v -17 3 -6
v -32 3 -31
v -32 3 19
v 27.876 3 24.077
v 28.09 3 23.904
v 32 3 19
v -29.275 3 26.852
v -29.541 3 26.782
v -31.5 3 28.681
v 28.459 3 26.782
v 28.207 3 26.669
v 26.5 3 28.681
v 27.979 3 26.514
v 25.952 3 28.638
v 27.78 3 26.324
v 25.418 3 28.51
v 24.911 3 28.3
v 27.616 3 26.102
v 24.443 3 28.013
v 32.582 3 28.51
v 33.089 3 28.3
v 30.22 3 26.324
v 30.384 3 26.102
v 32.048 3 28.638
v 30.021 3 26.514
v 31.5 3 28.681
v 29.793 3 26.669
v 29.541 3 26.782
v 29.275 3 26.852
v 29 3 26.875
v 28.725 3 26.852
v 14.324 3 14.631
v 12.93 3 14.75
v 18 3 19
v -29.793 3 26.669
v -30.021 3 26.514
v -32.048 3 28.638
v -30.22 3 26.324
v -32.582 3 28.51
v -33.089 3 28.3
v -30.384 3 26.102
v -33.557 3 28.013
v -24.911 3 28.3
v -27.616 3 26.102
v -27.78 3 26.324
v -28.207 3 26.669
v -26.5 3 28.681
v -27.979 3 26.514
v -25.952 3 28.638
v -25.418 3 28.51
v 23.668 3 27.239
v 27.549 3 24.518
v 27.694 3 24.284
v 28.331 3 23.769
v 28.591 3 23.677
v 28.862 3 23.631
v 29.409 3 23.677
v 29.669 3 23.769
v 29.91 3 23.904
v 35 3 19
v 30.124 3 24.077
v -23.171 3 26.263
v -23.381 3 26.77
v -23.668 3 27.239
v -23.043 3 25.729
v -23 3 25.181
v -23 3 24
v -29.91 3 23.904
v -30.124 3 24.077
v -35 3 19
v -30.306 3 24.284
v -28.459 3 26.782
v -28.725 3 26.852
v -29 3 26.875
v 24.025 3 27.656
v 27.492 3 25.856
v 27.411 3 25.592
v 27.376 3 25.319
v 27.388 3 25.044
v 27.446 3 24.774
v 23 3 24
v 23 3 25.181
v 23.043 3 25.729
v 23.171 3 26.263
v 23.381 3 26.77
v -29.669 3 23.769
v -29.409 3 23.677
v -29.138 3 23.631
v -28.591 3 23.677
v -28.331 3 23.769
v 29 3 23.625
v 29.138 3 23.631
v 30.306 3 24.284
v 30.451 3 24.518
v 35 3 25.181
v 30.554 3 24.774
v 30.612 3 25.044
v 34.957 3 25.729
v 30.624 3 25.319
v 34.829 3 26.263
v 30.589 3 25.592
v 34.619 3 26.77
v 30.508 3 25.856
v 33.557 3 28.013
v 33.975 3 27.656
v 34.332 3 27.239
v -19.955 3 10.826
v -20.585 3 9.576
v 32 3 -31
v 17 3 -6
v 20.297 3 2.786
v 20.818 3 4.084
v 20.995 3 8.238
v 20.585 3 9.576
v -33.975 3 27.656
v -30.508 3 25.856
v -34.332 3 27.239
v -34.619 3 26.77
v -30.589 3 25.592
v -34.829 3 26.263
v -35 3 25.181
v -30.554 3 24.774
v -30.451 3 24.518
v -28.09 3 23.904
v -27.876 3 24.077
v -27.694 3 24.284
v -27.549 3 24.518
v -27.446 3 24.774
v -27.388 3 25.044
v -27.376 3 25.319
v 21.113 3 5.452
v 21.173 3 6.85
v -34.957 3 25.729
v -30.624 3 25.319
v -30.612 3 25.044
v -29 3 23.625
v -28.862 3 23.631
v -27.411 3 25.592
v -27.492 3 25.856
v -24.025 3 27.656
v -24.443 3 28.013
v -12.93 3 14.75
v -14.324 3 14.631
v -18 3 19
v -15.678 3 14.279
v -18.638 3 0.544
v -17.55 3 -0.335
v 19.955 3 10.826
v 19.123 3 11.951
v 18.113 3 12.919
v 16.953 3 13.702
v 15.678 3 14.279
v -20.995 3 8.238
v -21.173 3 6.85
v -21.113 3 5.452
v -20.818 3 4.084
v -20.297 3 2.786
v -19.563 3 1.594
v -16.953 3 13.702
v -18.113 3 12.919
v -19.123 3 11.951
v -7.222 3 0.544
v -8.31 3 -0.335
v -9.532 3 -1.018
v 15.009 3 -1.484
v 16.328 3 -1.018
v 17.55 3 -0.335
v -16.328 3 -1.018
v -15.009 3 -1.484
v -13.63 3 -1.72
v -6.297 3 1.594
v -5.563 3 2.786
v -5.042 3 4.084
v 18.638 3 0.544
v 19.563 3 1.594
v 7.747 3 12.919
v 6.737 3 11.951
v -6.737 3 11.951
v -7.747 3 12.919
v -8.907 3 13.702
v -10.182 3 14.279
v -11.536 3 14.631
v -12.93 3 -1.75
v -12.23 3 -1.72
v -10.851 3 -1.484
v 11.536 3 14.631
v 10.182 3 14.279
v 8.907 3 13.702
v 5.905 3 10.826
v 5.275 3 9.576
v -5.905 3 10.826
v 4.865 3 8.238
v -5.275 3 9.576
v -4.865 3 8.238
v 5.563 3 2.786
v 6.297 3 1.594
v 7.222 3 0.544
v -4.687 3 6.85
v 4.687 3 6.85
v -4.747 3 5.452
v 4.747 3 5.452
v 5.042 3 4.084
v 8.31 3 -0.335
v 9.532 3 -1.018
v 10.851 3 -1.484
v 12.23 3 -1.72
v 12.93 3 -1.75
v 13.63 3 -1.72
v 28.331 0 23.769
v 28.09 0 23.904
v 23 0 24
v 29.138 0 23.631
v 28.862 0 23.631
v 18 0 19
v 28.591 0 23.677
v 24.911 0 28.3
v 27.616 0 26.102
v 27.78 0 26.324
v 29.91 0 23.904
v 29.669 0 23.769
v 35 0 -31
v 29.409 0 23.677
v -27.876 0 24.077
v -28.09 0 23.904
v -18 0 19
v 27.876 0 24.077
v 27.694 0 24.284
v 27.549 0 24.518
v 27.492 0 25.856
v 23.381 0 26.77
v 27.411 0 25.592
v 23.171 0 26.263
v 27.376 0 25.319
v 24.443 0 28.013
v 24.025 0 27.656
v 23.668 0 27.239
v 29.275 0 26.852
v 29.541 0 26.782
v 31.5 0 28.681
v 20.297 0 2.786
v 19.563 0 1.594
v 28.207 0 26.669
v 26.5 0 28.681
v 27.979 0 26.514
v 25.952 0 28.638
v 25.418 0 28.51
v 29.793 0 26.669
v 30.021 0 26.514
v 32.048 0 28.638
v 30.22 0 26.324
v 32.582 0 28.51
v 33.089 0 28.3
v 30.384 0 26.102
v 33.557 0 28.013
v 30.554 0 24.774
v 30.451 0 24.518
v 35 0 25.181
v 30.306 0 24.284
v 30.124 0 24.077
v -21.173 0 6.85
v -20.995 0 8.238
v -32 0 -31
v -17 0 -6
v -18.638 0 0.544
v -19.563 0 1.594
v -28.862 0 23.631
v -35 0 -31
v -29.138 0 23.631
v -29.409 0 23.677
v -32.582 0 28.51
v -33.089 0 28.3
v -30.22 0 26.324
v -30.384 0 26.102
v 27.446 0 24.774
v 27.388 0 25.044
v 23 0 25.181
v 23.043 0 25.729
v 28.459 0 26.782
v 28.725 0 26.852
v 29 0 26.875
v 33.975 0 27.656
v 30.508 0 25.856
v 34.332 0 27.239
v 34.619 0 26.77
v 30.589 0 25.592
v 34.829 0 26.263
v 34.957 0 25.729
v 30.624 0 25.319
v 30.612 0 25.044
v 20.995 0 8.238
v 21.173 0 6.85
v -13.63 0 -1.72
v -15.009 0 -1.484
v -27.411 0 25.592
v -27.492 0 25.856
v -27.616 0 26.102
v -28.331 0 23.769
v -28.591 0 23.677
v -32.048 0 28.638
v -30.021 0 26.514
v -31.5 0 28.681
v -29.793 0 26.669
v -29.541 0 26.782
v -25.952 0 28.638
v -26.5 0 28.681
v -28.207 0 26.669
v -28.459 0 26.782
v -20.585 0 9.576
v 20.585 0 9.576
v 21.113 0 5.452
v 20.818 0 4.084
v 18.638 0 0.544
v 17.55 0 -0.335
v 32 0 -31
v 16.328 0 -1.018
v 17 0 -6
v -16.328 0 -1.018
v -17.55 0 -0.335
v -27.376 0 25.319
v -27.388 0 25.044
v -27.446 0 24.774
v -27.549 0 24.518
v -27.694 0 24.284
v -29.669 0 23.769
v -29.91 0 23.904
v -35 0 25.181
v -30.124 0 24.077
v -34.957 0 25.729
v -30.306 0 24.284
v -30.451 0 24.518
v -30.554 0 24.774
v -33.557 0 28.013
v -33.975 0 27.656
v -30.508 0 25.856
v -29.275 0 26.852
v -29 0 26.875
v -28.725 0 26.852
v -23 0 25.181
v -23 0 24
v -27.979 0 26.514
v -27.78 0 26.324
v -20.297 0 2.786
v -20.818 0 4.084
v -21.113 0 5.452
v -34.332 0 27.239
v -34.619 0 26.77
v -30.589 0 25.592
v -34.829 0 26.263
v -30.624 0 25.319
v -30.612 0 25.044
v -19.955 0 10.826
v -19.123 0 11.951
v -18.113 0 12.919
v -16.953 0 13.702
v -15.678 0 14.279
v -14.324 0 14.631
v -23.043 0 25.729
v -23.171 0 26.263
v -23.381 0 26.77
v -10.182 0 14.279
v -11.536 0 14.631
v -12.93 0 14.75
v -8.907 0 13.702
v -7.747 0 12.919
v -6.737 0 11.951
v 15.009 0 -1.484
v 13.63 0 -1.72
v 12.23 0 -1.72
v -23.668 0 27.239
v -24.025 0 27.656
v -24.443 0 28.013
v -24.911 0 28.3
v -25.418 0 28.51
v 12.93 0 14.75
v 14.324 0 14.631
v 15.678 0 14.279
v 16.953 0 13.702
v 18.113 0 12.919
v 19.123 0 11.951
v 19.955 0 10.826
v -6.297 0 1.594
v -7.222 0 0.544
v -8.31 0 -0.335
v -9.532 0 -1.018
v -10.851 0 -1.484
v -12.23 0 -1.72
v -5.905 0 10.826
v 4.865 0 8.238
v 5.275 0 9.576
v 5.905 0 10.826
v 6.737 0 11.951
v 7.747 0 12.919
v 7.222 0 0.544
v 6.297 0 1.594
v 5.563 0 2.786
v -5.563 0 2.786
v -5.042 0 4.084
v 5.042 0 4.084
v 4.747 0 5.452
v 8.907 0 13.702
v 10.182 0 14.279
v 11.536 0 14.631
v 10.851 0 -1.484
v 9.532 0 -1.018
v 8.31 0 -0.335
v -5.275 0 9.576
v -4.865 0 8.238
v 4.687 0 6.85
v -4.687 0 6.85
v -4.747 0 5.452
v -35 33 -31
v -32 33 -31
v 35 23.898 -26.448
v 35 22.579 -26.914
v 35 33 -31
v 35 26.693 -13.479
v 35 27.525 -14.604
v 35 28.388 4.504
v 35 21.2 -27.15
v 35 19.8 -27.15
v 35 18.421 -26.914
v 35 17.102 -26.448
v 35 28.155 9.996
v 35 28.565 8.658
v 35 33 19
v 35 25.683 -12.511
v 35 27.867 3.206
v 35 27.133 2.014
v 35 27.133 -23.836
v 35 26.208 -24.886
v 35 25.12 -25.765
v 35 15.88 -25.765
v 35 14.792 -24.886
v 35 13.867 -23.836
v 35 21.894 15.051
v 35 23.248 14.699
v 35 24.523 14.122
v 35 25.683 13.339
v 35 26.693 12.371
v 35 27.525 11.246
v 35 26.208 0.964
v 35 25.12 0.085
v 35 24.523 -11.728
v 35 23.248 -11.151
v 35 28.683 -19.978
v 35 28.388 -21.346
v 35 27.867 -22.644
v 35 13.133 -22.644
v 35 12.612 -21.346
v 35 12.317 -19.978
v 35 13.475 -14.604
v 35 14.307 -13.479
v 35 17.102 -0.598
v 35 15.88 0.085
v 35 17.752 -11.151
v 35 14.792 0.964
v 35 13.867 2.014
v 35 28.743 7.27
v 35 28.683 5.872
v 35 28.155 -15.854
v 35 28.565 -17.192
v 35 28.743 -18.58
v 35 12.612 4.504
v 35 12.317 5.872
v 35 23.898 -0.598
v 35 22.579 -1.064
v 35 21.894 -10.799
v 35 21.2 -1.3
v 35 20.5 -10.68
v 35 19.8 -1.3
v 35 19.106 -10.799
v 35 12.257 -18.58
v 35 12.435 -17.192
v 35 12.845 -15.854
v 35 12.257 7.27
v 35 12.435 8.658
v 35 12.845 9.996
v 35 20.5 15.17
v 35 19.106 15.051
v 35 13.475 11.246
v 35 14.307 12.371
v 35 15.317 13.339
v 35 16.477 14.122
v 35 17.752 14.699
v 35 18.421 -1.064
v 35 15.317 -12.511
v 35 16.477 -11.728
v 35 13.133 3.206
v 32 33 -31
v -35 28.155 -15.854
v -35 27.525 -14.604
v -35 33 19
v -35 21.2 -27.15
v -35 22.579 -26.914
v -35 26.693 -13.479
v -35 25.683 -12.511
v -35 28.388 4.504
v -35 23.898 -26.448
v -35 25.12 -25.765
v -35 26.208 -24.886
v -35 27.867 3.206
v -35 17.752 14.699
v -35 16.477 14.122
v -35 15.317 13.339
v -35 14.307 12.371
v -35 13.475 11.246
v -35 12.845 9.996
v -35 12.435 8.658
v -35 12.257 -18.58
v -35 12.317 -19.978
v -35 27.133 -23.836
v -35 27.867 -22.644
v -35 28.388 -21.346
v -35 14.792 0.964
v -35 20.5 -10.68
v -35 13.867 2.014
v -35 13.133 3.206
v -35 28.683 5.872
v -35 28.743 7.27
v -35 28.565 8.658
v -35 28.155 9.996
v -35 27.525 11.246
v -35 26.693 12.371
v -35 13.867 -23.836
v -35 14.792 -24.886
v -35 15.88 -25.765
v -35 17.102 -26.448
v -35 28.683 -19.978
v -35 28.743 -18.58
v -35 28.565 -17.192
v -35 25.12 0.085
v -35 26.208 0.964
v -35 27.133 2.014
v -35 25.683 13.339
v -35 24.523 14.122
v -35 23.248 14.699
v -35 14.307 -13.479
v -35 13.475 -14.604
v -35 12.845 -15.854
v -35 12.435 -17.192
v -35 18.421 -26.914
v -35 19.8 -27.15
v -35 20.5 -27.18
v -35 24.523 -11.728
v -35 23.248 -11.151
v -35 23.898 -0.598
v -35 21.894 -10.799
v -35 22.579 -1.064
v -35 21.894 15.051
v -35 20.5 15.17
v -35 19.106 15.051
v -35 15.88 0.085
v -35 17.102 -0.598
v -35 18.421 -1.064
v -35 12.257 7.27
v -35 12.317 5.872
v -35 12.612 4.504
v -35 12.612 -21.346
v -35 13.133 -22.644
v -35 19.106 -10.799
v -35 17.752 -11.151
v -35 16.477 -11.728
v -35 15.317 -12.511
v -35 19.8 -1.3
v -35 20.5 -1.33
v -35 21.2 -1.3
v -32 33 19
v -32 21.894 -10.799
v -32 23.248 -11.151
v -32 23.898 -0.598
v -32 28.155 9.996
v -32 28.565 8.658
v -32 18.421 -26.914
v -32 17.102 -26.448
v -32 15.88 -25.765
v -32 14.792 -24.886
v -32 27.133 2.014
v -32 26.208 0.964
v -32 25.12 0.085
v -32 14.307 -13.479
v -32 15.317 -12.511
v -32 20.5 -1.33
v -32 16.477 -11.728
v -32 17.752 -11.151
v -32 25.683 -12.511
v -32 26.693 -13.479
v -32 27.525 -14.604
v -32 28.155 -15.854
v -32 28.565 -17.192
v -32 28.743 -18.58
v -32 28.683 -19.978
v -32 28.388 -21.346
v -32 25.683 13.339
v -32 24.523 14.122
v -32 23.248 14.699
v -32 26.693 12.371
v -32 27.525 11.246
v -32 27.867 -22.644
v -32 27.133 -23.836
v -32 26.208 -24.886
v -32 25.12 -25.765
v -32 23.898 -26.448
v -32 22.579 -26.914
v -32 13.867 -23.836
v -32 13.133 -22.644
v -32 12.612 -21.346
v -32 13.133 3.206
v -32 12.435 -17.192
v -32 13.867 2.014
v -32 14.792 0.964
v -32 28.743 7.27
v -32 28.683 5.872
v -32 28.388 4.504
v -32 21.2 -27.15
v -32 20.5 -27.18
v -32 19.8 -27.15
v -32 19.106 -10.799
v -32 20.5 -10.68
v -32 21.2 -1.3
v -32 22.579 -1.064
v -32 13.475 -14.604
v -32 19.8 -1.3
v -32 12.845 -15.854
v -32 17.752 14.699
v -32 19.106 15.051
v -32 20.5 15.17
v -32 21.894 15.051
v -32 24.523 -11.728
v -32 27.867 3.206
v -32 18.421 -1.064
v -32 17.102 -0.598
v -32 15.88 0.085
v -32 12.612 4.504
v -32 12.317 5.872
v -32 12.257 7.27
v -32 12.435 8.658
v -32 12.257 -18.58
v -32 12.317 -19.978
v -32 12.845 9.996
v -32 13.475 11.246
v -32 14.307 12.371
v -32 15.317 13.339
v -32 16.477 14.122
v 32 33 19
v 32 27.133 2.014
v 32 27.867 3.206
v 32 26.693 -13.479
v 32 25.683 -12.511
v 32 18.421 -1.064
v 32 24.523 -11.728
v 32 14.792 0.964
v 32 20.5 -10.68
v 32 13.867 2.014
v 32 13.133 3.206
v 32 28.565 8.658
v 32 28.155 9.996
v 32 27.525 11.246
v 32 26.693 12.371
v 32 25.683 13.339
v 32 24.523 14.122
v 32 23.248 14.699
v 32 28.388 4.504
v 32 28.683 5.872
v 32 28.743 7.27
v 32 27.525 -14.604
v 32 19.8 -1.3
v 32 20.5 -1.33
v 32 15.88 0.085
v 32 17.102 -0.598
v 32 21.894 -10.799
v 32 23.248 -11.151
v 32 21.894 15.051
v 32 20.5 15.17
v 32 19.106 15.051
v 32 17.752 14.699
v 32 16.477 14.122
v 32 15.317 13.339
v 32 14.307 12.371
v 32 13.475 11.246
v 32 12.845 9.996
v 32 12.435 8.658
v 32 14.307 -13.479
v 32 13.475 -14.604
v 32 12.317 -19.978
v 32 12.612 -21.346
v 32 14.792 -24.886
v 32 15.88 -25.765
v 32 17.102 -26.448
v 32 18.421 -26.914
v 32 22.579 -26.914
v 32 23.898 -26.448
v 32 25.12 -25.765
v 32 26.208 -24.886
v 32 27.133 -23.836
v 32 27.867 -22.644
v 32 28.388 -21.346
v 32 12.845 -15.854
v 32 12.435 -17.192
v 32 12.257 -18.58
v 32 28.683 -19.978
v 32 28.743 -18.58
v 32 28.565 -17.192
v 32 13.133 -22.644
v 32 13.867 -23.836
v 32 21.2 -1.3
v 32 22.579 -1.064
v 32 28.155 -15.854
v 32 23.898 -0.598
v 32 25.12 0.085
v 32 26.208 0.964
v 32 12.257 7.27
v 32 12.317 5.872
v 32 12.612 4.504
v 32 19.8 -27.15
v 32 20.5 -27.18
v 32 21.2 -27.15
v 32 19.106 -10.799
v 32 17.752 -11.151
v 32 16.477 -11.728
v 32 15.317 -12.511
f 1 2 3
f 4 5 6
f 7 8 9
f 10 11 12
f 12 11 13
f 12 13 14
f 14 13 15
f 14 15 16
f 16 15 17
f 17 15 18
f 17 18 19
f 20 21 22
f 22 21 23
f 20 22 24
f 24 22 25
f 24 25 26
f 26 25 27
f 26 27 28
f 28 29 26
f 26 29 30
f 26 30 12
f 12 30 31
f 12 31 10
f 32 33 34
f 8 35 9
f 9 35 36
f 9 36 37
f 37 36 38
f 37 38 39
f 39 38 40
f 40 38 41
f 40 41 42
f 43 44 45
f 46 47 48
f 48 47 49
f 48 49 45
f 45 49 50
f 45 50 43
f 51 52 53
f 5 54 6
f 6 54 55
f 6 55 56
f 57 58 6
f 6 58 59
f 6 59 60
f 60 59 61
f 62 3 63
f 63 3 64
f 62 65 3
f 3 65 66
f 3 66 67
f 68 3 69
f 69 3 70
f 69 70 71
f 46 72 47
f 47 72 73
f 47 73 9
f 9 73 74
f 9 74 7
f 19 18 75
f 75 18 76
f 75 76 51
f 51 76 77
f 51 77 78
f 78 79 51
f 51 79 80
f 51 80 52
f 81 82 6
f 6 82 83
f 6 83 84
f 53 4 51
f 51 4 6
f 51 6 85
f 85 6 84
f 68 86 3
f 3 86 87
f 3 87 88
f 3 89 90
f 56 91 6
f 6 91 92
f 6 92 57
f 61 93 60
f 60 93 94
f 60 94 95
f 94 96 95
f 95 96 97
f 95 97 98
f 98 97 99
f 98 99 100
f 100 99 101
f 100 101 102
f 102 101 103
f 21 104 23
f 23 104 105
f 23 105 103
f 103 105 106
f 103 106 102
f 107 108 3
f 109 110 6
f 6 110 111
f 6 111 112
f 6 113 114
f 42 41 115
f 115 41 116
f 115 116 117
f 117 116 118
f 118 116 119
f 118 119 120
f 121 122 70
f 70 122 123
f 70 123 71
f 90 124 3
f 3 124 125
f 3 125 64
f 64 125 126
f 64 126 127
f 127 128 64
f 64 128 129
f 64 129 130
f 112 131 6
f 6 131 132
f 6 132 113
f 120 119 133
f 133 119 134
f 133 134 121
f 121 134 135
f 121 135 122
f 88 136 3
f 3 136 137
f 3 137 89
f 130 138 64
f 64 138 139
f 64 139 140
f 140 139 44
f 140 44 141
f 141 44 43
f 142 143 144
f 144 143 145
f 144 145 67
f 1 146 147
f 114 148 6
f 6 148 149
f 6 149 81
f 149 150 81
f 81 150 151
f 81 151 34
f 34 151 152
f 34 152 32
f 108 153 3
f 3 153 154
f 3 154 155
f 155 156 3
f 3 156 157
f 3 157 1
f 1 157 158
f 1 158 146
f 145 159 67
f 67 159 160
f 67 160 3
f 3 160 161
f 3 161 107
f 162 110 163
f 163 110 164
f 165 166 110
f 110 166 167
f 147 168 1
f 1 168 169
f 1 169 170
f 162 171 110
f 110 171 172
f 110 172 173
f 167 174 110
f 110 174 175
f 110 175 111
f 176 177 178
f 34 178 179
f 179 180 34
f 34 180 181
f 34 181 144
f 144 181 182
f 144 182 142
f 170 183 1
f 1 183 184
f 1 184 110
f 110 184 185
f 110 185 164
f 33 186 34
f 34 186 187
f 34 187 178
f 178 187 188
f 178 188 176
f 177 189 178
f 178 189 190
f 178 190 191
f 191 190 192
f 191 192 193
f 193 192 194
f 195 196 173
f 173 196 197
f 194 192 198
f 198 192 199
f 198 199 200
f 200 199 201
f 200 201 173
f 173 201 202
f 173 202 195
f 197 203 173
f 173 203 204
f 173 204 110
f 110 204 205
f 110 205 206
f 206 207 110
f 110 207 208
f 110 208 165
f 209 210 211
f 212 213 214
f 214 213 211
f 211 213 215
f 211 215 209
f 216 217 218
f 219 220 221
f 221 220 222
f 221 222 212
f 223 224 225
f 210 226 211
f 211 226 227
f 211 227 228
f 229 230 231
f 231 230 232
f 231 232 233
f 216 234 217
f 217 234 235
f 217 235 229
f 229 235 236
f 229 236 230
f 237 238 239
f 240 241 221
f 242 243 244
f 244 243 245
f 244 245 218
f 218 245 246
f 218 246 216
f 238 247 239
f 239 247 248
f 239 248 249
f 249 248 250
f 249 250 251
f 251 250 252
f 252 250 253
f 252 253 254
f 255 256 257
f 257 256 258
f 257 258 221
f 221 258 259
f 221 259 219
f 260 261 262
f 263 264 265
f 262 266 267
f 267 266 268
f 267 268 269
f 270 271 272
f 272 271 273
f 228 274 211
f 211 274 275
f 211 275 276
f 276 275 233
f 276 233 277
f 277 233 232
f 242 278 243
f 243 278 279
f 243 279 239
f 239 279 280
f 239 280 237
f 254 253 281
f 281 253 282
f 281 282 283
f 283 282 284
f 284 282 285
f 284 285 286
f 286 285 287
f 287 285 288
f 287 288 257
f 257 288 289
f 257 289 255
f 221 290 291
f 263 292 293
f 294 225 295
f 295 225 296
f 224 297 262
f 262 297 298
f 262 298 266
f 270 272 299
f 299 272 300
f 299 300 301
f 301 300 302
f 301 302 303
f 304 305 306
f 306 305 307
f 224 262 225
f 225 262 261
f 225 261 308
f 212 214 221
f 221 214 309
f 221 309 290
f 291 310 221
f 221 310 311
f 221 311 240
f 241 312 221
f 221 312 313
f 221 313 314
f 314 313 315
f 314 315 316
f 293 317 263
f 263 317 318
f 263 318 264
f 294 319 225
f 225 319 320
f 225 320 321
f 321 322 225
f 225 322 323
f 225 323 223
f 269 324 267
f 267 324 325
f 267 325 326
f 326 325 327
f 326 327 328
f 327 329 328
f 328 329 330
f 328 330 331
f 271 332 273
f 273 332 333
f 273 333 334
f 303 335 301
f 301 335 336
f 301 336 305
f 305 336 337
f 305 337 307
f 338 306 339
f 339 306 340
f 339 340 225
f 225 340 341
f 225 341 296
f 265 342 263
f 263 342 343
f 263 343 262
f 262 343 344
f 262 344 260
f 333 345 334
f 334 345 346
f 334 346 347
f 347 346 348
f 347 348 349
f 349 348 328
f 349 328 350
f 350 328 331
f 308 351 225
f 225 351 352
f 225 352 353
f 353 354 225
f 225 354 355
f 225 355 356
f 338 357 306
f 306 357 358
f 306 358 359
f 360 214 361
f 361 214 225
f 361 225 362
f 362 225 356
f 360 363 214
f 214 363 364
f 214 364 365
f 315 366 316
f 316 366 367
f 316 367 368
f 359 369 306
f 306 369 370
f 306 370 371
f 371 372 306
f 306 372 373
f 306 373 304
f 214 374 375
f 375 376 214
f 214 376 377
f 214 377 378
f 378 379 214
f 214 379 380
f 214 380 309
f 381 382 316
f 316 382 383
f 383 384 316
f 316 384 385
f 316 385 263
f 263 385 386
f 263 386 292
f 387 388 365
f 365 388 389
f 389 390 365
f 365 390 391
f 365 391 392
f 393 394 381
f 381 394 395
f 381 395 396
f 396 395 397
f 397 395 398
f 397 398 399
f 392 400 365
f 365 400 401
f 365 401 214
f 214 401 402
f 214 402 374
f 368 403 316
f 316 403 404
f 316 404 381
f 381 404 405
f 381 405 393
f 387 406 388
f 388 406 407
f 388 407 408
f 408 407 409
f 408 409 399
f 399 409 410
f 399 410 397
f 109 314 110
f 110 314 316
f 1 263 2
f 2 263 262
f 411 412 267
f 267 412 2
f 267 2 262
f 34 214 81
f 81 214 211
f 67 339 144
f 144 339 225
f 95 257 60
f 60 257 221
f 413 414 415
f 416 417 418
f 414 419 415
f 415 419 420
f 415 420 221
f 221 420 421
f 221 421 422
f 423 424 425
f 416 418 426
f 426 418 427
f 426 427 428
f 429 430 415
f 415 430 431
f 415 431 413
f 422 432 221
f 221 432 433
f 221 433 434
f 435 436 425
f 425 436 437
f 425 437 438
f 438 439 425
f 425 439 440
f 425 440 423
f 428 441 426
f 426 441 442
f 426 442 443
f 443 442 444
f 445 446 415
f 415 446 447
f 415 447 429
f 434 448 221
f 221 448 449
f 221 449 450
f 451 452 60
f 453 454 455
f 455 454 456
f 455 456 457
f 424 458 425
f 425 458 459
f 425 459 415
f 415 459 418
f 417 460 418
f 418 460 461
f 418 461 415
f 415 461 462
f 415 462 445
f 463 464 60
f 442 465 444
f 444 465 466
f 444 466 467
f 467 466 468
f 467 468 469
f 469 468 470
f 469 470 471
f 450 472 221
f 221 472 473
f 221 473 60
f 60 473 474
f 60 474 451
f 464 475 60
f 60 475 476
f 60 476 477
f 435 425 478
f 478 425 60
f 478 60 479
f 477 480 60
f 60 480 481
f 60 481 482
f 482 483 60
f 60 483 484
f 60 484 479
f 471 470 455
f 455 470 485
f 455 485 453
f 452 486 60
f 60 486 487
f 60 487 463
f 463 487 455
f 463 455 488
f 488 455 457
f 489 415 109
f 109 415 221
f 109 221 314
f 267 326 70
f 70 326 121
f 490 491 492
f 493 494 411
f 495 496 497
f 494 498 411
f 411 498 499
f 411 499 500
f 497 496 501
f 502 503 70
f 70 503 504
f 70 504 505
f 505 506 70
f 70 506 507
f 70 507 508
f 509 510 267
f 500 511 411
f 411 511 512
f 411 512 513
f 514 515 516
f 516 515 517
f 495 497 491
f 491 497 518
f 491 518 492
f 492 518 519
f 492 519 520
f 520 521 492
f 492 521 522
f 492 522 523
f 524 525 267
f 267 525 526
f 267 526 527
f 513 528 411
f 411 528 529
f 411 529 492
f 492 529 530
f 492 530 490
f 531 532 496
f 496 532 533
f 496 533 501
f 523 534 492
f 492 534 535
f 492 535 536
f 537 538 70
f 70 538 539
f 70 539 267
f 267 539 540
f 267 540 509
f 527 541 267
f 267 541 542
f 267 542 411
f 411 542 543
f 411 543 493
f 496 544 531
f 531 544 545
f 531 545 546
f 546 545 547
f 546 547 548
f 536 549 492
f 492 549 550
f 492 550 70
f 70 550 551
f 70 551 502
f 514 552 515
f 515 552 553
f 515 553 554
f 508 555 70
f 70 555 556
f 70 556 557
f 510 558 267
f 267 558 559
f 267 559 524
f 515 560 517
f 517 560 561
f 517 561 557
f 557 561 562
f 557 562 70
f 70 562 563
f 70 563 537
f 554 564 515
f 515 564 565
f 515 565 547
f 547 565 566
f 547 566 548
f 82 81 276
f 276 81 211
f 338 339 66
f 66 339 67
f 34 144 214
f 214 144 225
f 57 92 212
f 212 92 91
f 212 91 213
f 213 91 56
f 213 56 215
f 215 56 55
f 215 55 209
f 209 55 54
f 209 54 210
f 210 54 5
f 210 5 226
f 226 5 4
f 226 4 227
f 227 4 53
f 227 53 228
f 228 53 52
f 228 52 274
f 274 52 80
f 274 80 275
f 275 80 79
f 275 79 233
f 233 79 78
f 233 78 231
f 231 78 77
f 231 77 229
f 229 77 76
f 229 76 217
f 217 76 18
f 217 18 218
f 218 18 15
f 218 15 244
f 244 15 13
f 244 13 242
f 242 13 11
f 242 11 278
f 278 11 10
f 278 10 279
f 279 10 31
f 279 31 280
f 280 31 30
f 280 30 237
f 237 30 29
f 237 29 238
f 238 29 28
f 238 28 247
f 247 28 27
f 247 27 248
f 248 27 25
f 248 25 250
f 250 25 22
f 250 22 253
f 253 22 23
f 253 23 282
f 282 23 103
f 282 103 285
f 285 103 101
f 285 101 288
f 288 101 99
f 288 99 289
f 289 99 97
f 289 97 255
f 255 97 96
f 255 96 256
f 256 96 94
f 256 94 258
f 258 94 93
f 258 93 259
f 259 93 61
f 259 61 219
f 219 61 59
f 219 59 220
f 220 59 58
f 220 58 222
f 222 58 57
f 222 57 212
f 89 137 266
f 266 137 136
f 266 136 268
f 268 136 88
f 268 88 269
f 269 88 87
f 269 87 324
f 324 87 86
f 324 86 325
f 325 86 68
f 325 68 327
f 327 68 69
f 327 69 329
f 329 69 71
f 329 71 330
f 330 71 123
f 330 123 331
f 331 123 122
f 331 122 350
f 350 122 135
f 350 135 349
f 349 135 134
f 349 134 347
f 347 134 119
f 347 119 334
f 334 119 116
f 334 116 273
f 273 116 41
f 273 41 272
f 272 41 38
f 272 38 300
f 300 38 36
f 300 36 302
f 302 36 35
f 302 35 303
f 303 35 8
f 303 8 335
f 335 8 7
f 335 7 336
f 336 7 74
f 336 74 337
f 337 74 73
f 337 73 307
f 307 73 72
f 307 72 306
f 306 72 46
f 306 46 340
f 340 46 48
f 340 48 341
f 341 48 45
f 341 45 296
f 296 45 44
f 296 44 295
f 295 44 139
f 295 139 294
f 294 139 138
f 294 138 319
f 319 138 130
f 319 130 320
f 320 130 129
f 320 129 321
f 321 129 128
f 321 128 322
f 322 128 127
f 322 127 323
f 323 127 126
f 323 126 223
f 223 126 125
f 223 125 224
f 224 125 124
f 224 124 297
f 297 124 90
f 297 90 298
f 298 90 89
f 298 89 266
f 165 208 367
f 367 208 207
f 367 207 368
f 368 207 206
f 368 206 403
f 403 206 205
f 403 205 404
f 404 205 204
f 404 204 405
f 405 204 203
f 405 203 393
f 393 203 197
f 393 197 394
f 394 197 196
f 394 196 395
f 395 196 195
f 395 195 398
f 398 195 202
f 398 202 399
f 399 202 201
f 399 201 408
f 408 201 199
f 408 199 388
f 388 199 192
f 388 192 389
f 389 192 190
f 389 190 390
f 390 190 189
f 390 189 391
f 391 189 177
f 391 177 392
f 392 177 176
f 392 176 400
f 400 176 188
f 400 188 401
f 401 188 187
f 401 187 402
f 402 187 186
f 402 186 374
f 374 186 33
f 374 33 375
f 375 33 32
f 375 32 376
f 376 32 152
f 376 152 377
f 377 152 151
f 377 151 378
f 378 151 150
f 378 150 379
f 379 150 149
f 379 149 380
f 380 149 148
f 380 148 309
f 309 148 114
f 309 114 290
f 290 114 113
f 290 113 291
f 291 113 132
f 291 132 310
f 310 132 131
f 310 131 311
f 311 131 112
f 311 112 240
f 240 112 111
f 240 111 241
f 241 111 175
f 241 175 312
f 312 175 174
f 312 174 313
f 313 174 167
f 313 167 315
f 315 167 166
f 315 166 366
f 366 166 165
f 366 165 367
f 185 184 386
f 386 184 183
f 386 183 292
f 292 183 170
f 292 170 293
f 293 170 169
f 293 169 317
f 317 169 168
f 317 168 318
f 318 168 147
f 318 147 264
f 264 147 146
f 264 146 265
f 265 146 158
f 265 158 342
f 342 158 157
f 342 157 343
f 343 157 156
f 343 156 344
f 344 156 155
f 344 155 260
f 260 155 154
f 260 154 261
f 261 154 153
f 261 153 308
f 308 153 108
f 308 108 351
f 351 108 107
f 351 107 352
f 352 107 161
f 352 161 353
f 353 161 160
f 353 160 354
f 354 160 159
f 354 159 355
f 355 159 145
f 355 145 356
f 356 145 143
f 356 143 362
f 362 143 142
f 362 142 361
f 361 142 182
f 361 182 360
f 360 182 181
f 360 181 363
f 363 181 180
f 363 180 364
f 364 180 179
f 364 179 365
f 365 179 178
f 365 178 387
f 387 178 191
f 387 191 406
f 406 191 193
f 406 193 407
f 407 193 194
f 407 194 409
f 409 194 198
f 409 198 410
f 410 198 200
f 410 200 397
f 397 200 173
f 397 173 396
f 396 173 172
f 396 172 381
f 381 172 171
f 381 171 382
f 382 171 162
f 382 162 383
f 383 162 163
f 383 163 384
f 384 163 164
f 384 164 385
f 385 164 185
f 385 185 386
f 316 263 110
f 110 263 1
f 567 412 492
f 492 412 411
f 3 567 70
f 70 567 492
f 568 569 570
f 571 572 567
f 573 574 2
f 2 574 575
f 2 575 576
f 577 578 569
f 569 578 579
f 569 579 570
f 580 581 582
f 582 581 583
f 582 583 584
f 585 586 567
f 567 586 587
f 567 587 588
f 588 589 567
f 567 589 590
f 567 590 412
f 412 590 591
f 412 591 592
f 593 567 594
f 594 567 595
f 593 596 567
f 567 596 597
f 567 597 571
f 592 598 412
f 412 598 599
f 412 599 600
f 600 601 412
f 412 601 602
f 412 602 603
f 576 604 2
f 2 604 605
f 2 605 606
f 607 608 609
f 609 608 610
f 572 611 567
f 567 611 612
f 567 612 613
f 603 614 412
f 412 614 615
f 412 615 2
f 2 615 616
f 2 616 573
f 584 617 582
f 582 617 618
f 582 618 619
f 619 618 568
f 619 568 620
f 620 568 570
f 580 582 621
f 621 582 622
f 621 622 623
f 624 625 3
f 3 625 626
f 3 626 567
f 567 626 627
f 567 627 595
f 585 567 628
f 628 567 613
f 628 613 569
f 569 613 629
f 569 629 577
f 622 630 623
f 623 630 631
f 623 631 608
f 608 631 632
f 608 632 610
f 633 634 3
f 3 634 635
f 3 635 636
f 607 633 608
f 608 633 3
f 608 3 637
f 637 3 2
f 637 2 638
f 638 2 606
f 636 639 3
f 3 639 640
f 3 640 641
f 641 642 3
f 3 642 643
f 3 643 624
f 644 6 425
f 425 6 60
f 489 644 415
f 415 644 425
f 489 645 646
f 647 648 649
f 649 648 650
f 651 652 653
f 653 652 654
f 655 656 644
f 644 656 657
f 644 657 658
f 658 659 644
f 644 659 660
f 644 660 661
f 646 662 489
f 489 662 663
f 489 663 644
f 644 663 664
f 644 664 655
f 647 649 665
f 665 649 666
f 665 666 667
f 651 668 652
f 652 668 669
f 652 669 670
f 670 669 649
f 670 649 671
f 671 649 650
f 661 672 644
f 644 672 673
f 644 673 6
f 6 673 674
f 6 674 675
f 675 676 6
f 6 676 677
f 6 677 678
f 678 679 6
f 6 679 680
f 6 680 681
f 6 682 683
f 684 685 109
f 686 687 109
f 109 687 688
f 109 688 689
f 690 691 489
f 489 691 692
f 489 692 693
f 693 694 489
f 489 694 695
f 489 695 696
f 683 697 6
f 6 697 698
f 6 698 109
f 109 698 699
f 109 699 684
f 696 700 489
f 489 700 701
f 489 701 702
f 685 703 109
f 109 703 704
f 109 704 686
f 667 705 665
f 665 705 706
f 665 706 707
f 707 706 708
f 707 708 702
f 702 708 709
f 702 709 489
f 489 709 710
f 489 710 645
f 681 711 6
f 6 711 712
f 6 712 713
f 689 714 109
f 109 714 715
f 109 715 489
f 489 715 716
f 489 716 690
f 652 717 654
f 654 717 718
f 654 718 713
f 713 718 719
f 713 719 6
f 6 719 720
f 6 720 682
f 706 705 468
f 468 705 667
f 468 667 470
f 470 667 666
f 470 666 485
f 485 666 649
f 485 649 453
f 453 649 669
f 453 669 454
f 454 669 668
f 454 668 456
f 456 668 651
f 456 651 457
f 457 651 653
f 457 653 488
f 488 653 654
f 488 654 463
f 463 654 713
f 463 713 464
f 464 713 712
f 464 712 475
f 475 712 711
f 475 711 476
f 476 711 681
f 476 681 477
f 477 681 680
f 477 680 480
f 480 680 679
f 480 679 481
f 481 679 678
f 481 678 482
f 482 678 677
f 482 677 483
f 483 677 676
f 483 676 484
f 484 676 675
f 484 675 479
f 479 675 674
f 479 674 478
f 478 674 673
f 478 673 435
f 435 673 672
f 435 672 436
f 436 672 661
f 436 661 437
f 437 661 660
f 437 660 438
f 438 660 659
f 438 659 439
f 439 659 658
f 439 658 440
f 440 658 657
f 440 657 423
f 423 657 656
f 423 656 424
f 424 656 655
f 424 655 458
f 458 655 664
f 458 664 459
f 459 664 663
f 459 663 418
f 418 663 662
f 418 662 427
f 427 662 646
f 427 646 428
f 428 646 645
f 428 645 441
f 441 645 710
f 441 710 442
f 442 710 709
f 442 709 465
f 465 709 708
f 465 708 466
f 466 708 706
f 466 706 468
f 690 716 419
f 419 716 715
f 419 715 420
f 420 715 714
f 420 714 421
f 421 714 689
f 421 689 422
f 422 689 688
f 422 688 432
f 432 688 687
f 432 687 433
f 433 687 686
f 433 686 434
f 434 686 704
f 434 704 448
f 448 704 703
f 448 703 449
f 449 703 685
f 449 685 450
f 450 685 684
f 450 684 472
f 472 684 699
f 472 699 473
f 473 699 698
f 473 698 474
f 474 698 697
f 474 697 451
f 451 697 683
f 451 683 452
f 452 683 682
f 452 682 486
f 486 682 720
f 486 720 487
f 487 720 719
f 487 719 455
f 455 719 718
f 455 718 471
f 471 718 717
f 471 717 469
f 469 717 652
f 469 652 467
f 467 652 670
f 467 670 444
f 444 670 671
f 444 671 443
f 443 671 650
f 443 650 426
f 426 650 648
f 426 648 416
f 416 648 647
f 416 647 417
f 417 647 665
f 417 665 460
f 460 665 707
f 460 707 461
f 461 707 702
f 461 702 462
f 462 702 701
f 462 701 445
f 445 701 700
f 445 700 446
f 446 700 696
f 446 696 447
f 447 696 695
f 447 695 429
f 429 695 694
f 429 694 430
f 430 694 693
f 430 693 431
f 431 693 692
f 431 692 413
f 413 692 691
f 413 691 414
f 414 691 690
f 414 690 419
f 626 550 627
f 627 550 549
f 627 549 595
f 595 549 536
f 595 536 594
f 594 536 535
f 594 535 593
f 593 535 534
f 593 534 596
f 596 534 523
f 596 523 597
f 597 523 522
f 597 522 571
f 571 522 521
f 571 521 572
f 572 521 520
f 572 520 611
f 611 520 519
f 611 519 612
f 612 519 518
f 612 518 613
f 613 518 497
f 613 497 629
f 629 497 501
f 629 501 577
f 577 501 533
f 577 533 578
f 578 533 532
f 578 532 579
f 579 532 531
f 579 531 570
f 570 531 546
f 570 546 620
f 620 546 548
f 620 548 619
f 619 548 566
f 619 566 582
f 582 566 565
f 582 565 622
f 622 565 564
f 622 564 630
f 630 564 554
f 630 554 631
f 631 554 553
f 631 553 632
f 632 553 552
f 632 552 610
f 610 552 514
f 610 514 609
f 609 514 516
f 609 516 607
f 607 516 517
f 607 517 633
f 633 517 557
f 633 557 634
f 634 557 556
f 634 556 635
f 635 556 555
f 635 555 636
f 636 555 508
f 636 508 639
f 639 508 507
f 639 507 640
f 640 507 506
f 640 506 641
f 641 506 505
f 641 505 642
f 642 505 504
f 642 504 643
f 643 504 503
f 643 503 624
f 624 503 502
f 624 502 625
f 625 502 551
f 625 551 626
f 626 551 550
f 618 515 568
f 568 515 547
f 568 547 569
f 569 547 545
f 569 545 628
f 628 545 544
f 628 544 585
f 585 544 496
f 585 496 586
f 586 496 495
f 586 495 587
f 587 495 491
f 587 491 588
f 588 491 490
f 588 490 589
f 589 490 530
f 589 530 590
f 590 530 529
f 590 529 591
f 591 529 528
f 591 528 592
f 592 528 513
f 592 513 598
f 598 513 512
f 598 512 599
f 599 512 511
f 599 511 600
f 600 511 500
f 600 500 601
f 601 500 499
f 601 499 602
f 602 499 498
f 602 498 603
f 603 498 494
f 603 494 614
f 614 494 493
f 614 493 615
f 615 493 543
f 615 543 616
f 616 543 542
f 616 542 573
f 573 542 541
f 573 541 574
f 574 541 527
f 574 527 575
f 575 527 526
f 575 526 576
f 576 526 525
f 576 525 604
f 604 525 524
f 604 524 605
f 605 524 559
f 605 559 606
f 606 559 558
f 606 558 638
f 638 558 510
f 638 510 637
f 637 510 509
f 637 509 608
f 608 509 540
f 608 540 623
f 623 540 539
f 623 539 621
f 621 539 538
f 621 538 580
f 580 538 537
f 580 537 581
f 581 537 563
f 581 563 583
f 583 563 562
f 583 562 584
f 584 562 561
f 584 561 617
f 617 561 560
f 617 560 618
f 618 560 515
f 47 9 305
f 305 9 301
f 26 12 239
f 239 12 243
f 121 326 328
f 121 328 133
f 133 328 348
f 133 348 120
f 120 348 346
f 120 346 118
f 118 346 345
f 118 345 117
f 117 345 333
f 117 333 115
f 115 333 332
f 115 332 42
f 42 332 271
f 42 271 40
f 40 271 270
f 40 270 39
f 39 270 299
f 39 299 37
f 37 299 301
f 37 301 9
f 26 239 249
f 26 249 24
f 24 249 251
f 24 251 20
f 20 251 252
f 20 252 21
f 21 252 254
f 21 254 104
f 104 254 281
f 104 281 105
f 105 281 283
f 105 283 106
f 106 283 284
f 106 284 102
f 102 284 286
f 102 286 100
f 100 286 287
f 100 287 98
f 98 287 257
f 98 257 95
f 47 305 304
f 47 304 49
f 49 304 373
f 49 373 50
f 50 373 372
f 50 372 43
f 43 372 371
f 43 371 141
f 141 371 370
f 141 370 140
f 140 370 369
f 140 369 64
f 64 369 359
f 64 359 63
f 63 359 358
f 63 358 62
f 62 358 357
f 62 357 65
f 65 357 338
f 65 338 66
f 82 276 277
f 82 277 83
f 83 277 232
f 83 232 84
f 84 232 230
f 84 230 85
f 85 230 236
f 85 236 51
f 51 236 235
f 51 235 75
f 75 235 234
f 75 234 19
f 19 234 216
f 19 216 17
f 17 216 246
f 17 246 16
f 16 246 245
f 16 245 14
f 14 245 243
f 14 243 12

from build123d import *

# Parameters (mm, degrees)
CROQUIS1_W                 = 70
CROQUIS1_H                 = 62
SALIENTE_EXTRUIR1_DEPTH    = 3
CORTAR_EXTRUIR1_DEPTH      = 47.8508271
CORTAR_EXTRUIR2_DEPTH      = 47.8508271
CROQUIS4_W                 = 46
CROQUIS4_H                 = 10
CORTAR_EXTRUIR3_DEPTH      = 47.8508271
CROQUIS5_W                 = 46
CROQUIS5_H                 = 2
CORTAR_EXTRUIR4_DEPTH      = 47.8508271
CORTAR_EXTRUIR5_DEPTH      = 47.8508271
CORTAR_EXTRUIR5_DEPTH_BACK = 47.8508271
CROQUIS6_R                 = 1.625
CHAFL_N1_START             = -4
CHAFL_N1_OUTLINE_W         = 7.071067812
CHAFL_N1_OUTLINE_H         = 3
CHAFL_N1_DEPTH             = 4.707106781
CHAFL_N2_START             = -0.707106781
CHAFL_N2_OUTLINE_W         = 7.071067812
CHAFL_N2_OUTLINE_H         = 3
CHAFL_N2_DEPTH             = 4.707106781
CORTAR_EXTRUIR6_DEPTH      = 47.8508271
CORTAR_EXTRUIR6_DEPTH_BACK = 47.8508271
CROQUIS7_R                 = 8.25
SALIENTE_EXTRUIR2_DEPTH    = 3
CORTAR_EXTRUIR7_DEPTH      = 69.23672032
CORTAR_EXTRUIR7_DEPTH_BACK = 69.23672032
CORTAR_EXTRUIR8_DEPTH      = 47.8508271
CHAFL_N3_DEPTH             = 3
CHAFL_N5_DEPTH             = 3
CROQUIS13_W                = 50
CROQUIS13_H                = 30
SALIENTE_EXTRUIR3_DEPTH    = 3
CROQUIS14_W                = 50
CROQUIS14_H                = 30
SALIENTE_EXTRUIR4_DEPTH    = 3
REDONDEO1_R                = 5
CORTAR_EXTRUIR9_DEPTH      = 84.366660003
CORTAR_EXTRUIR9_DEPTH_BACK = 84.366660003
CROQUIS16_R                = 8.25
CROQUIS17_W                = 10.440463992
CROQUIS17_H                = 4.63729848
CORTAR_EXTRUIR10_DEPTH     = 5
CROQUIS18_W                = 0.779768004
CROQUIS18_H                = 2.68135076
SALIENTE_EXTRUIR5_DEPTH    = 3
CROQUIS19_W                = 0.779768004
CROQUIS19_H                = 2.68135076
SALIENTE_EXTRUIR6_DEPTH    = 3
REDONDEO6_R                = 3.5
REDONDEO7_R                = 3.5


with BuildPart() as part:
    # Croquis1 → Saliente-Extruir1 (new body)
    with BuildSketch(Plane(origin=(0, 0, 0), x_dir=(1, 0, 0), z_dir=(0, 1, 0))):
        Rectangle(CROQUIS1_W, CROQUIS1_H)
    extrude(amount=SALIENTE_EXTRUIR1_DEPTH)

    # Croquis2 → Cortar-Extruir1 (cut, through all)
    with BuildSketch(Plane(origin=(0, 3, 0), x_dir=(1, 0, 0), z_dir=(0, 1, 0))):
        Polygon((31.754264805, 31), (15.877132403, 58.5), (-15.877132403, 58.5), (-31.754264805, 31), (-15.877132403, 3.5), (15.877132403, 3.5), align=None)
    extrude(amount=-CORTAR_EXTRUIR1_DEPTH, mode=Mode.SUBTRACT)

    # Croquis3 → Cortar-Extruir2 (cut, through all)
    with BuildSketch(Plane(origin=(0, 3, 0), x_dir=(1, 0, 0), z_dir=(0, 1, 0))):
        with BuildLine():
            Line((-13, -21), (13, -21))
            ThreePointArc((13, -21), (23, -31), (13, -41))
            Line((13, -41), (-13, -41))
            ThreePointArc((-13, -41), (-23, -31), (-13, -21))
        make_face()
    extrude(amount=-CORTAR_EXTRUIR2_DEPTH, mode=Mode.SUBTRACT)

    # Croquis4 → Cortar-Extruir3 (cut, through all)
    with BuildSketch(Plane(origin=(0, 3, 0), x_dir=(1, 0, 0), z_dir=(0, 1, 0))):
        with Locations((0, -26)):
            Rectangle(CROQUIS4_W, CROQUIS4_H)
    extrude(amount=-CORTAR_EXTRUIR3_DEPTH, mode=Mode.SUBTRACT)

    # Croquis5 → Cortar-Extruir4 (cut, through all)
    with BuildSketch(Plane(origin=(0, 3, 0), x_dir=(1, 0, 0), z_dir=(0, 1, 0))):
        with Locations((0, -20)):
            Rectangle(CROQUIS5_W, CROQUIS5_H)
    extrude(amount=-CORTAR_EXTRUIR4_DEPTH, mode=Mode.SUBTRACT)

    # Croquis6 → Cortar-Extruir5 (cut, two sides: drawn at the far end of the back side and taken through both)
    with BuildSketch(Plane(origin=(0, 3, 0), x_dir=(1, 0, 0), z_dir=(0, 1, 0)).offset(-CORTAR_EXTRUIR5_DEPTH_BACK)):
        with Locations(Location((-29, -25.25, 0), (0, 0, 270))):
            Circle(CROQUIS6_R)
        with Locations(Location((29, -25.25, 0), (0, 0, 270))):
            Circle(CROQUIS6_R)
    extrude(amount=CORTAR_EXTRUIR5_DEPTH + CORTAR_EXTRUIR5_DEPTH_BACK, mode=Mode.SUBTRACT)

    # Chaflán1: read off the stored shape, not the designer's step
    # Chaflán1 outline → Chaflán1 (add)
    with BuildSketch(Plane(origin=(0, 0, 0), x_dir=(0.7071067811865471, 0, -0.707106781186548), z_dir=(0.707106781186548, 0, 0.707106781186547)).offset(CHAFL_N1_START)):
        with Locations((-29.69848481, 1.5)):
            Rectangle(CHAFL_N1_OUTLINE_W, CHAFL_N1_OUTLINE_H)
    extrude(amount=CHAFL_N1_DEPTH)

    # Chaflán2: read off the stored shape, not the designer's step
    # Chaflán2 outline → Chaflán2 (add)
    with BuildSketch(Plane(origin=(0, 0, 0), x_dir=(0.707106781186548, 0, 0.707106781186547), z_dir=(0.707106781186547, 0, -0.707106781186548)).offset(CHAFL_N2_START)):
        with Locations((29.69848481, -1.5)):
            Rectangle(CHAFL_N2_OUTLINE_W, CHAFL_N2_OUTLINE_H)
    extrude(amount=CHAFL_N2_DEPTH)

    # Croquis7 → Cortar-Extruir6 (cut, two sides: drawn at the far end of the back side and taken through both)
    with BuildSketch(Plane(origin=(0, 3, 0), x_dir=(1, 0, 0), z_dir=(0, 1, 0)).offset(-CORTAR_EXTRUIR6_DEPTH_BACK)):
        with Locations(Location((-12.93, -6.5, 0), (0, 0, 270))):
            Circle(CROQUIS7_R)
        with Locations(Location((12.93, -6.5, 0), (0, 0, 270))):
            Circle(CROQUIS7_R)
    extrude(amount=CORTAR_EXTRUIR6_DEPTH + CORTAR_EXTRUIR6_DEPTH_BACK, mode=Mode.SUBTRACT)

    # Croquis8 → Saliente-Extruir2 (add)
    with BuildSketch(Plane(origin=(0, 3, 0), x_dir=(1, 0, 0), z_dir=(0, 1, 0))):
        Polygon((15.877132403, 3.5), (31.754264805, 31), (15.877132403, 58.5), (-15.877132403, 58.5), (-31.754264805, 31), (-15.877132403, 3.5), (0, 3.5), align=None)
    extrude(amount=-SALIENTE_EXTRUIR2_DEPTH)

    # Croquis9 → Cortar-Extruir7 (cut, two sides: drawn at the far end of the back side and taken through both)
    with BuildSketch(Plane(origin=(0, 3, 0), x_dir=(1, 0, 0), z_dir=(0, 1, 0)).offset(-CORTAR_EXTRUIR7_DEPTH_BACK)):
        Polygon((-232.018715641, 31), (-35, 31), (35, 31), (232.018715641, 31), (232.018715641, 425.037431282), (-232.018715641, 425.037431282), align=None)
    extrude(amount=CORTAR_EXTRUIR7_DEPTH + CORTAR_EXTRUIR7_DEPTH_BACK, mode=Mode.SUBTRACT)

    # Croquis10 → Cortar-Extruir8 (cut, through all)
    with BuildSketch(Plane(origin=(0, 3, 0), x_dir=(1, 0, 0), z_dir=(0, 1, 0))):
        Polygon((0, 6), (-32, 6), (-32, 31), (32, 31), (32, 6), align=None)
    extrude(amount=-CORTAR_EXTRUIR8_DEPTH, mode=Mode.SUBTRACT)

    # Chaflán3: read off the stored shape, not the designer's step
    # Chaflán3 outline → Chaflán3 (add)
    with BuildSketch(Plane(origin=(0, 0, 0), x_dir=(1, 0, 0), z_dir=(0, 1, 0))):
        Polygon((-32, 6), (-17, 6), (-32, 31), align=None)
    extrude(amount=CHAFL_N3_DEPTH)

    # Chaflán5: read off the stored shape, not the designer's step
    # Chaflán5 outline → Chaflán5 (add)
    with BuildSketch(Plane(origin=(0, 0, 0), x_dir=(1, 0, 0), z_dir=(0, 1, 0))):
        Polygon((32, 6), (32, 31), (17, 6), align=None)
    extrude(amount=CHAFL_N5_DEPTH)

    # Croquis13 → Saliente-Extruir3 (add)
    with BuildSketch(Plane.ZY.offset(35)):
        with Locations((-6, 18)):
            Rectangle(CROQUIS13_W, CROQUIS13_H)
    extrude(amount=-SALIENTE_EXTRUIR3_DEPTH)

    # Croquis14 → Saliente-Extruir4 (add)
    with BuildSketch(Plane(origin=(35, 0, 0), x_dir=(0, 0, -1), z_dir=(1, 0, 0))):
        with Locations((6, 18)):
            Rectangle(CROQUIS14_W, CROQUIS14_H)
    extrude(amount=-SALIENTE_EXTRUIR4_DEPTH)

    # Redondeo1
    redondeo1_edges = [part.edges().sort_by_distance(p)[0] for p in [
        (-23, 1.5, 31),
        (23, 1.5, 31),
        (35, 1.5, 31),
        (-35, 1.5, 31),
    ]]
    fillet(redondeo1_edges, radius=REDONDEO1_R)

    # Croquis16 → Cortar-Extruir9 (cut, two sides: drawn at the far end of the back side and taken through both)
    with BuildSketch(Plane.ZY.offset(35).offset(-CORTAR_EXTRUIR9_DEPTH_BACK)):
        with Locations((-18.93, 20.5)):
            Circle(CROQUIS16_R)
        with Locations((6.92, 20.5)):
            Circle(CROQUIS16_R)
    extrude(amount=CORTAR_EXTRUIR9_DEPTH + CORTAR_EXTRUIR9_DEPTH_BACK, mode=Mode.SUBTRACT)

    # Croquis17 → Cortar-Extruir10 (cut)
    with BuildSketch(Plane(origin=(0, 3, 0), x_dir=(1, 0, 0), z_dir=(0, 1, 0))):
        with Locations((-29, -31)):
            Rectangle(CROQUIS17_W, CROQUIS17_H)
        with Locations((29, -31)):
            Rectangle(CROQUIS17_W, CROQUIS17_H)
    extrude(amount=-CORTAR_EXTRUIR10_DEPTH, mode=Mode.SUBTRACT)

    # Croquis18 → Saliente-Extruir5 (add)
    with BuildSketch(Plane(origin=(0, 3, 0), x_dir=(1, 0, 0), z_dir=(0, 1, 0))):
        with Locations((-34.610115998, -27.34067538)):
            Rectangle(CROQUIS18_W, CROQUIS18_H)
        with Locations((-23.389884002, -27.34067538)):
            Rectangle(CROQUIS18_W, CROQUIS18_H)
    extrude(amount=-SALIENTE_EXTRUIR5_DEPTH)

    # Croquis19 → Saliente-Extruir6 (add)
    with BuildSketch(Plane(origin=(0, 3, 0), x_dir=(1, 0, 0), z_dir=(0, 1, 0))):
        with Locations((23.389884002, -27.34067538)):
            Rectangle(CROQUIS19_W, CROQUIS19_H)
        with Locations((34.610115998, -27.34067538)):
            Rectangle(CROQUIS19_W, CROQUIS19_H)
    extrude(amount=-SALIENTE_EXTRUIR6_DEPTH)

    # Redondeo6
    redondeo6_edges = [part.edges().sort_by_distance(p)[0] for p in [
        (-35, 1.5, 28.68135076),
    ]]
    fillet(redondeo6_edges, radius=REDONDEO6_R)

    # Redondeo7
    redondeo7_edges = [part.edges().sort_by_distance(p)[0] for p in [
        (-23, 1.5, 28.68135076),
        (23, 1.5, 28.68135076),
        (35, 1.5, 28.68135076),
    ]]
    fillet(redondeo7_edges, radius=REDONDEO7_R)


solid = part.part
